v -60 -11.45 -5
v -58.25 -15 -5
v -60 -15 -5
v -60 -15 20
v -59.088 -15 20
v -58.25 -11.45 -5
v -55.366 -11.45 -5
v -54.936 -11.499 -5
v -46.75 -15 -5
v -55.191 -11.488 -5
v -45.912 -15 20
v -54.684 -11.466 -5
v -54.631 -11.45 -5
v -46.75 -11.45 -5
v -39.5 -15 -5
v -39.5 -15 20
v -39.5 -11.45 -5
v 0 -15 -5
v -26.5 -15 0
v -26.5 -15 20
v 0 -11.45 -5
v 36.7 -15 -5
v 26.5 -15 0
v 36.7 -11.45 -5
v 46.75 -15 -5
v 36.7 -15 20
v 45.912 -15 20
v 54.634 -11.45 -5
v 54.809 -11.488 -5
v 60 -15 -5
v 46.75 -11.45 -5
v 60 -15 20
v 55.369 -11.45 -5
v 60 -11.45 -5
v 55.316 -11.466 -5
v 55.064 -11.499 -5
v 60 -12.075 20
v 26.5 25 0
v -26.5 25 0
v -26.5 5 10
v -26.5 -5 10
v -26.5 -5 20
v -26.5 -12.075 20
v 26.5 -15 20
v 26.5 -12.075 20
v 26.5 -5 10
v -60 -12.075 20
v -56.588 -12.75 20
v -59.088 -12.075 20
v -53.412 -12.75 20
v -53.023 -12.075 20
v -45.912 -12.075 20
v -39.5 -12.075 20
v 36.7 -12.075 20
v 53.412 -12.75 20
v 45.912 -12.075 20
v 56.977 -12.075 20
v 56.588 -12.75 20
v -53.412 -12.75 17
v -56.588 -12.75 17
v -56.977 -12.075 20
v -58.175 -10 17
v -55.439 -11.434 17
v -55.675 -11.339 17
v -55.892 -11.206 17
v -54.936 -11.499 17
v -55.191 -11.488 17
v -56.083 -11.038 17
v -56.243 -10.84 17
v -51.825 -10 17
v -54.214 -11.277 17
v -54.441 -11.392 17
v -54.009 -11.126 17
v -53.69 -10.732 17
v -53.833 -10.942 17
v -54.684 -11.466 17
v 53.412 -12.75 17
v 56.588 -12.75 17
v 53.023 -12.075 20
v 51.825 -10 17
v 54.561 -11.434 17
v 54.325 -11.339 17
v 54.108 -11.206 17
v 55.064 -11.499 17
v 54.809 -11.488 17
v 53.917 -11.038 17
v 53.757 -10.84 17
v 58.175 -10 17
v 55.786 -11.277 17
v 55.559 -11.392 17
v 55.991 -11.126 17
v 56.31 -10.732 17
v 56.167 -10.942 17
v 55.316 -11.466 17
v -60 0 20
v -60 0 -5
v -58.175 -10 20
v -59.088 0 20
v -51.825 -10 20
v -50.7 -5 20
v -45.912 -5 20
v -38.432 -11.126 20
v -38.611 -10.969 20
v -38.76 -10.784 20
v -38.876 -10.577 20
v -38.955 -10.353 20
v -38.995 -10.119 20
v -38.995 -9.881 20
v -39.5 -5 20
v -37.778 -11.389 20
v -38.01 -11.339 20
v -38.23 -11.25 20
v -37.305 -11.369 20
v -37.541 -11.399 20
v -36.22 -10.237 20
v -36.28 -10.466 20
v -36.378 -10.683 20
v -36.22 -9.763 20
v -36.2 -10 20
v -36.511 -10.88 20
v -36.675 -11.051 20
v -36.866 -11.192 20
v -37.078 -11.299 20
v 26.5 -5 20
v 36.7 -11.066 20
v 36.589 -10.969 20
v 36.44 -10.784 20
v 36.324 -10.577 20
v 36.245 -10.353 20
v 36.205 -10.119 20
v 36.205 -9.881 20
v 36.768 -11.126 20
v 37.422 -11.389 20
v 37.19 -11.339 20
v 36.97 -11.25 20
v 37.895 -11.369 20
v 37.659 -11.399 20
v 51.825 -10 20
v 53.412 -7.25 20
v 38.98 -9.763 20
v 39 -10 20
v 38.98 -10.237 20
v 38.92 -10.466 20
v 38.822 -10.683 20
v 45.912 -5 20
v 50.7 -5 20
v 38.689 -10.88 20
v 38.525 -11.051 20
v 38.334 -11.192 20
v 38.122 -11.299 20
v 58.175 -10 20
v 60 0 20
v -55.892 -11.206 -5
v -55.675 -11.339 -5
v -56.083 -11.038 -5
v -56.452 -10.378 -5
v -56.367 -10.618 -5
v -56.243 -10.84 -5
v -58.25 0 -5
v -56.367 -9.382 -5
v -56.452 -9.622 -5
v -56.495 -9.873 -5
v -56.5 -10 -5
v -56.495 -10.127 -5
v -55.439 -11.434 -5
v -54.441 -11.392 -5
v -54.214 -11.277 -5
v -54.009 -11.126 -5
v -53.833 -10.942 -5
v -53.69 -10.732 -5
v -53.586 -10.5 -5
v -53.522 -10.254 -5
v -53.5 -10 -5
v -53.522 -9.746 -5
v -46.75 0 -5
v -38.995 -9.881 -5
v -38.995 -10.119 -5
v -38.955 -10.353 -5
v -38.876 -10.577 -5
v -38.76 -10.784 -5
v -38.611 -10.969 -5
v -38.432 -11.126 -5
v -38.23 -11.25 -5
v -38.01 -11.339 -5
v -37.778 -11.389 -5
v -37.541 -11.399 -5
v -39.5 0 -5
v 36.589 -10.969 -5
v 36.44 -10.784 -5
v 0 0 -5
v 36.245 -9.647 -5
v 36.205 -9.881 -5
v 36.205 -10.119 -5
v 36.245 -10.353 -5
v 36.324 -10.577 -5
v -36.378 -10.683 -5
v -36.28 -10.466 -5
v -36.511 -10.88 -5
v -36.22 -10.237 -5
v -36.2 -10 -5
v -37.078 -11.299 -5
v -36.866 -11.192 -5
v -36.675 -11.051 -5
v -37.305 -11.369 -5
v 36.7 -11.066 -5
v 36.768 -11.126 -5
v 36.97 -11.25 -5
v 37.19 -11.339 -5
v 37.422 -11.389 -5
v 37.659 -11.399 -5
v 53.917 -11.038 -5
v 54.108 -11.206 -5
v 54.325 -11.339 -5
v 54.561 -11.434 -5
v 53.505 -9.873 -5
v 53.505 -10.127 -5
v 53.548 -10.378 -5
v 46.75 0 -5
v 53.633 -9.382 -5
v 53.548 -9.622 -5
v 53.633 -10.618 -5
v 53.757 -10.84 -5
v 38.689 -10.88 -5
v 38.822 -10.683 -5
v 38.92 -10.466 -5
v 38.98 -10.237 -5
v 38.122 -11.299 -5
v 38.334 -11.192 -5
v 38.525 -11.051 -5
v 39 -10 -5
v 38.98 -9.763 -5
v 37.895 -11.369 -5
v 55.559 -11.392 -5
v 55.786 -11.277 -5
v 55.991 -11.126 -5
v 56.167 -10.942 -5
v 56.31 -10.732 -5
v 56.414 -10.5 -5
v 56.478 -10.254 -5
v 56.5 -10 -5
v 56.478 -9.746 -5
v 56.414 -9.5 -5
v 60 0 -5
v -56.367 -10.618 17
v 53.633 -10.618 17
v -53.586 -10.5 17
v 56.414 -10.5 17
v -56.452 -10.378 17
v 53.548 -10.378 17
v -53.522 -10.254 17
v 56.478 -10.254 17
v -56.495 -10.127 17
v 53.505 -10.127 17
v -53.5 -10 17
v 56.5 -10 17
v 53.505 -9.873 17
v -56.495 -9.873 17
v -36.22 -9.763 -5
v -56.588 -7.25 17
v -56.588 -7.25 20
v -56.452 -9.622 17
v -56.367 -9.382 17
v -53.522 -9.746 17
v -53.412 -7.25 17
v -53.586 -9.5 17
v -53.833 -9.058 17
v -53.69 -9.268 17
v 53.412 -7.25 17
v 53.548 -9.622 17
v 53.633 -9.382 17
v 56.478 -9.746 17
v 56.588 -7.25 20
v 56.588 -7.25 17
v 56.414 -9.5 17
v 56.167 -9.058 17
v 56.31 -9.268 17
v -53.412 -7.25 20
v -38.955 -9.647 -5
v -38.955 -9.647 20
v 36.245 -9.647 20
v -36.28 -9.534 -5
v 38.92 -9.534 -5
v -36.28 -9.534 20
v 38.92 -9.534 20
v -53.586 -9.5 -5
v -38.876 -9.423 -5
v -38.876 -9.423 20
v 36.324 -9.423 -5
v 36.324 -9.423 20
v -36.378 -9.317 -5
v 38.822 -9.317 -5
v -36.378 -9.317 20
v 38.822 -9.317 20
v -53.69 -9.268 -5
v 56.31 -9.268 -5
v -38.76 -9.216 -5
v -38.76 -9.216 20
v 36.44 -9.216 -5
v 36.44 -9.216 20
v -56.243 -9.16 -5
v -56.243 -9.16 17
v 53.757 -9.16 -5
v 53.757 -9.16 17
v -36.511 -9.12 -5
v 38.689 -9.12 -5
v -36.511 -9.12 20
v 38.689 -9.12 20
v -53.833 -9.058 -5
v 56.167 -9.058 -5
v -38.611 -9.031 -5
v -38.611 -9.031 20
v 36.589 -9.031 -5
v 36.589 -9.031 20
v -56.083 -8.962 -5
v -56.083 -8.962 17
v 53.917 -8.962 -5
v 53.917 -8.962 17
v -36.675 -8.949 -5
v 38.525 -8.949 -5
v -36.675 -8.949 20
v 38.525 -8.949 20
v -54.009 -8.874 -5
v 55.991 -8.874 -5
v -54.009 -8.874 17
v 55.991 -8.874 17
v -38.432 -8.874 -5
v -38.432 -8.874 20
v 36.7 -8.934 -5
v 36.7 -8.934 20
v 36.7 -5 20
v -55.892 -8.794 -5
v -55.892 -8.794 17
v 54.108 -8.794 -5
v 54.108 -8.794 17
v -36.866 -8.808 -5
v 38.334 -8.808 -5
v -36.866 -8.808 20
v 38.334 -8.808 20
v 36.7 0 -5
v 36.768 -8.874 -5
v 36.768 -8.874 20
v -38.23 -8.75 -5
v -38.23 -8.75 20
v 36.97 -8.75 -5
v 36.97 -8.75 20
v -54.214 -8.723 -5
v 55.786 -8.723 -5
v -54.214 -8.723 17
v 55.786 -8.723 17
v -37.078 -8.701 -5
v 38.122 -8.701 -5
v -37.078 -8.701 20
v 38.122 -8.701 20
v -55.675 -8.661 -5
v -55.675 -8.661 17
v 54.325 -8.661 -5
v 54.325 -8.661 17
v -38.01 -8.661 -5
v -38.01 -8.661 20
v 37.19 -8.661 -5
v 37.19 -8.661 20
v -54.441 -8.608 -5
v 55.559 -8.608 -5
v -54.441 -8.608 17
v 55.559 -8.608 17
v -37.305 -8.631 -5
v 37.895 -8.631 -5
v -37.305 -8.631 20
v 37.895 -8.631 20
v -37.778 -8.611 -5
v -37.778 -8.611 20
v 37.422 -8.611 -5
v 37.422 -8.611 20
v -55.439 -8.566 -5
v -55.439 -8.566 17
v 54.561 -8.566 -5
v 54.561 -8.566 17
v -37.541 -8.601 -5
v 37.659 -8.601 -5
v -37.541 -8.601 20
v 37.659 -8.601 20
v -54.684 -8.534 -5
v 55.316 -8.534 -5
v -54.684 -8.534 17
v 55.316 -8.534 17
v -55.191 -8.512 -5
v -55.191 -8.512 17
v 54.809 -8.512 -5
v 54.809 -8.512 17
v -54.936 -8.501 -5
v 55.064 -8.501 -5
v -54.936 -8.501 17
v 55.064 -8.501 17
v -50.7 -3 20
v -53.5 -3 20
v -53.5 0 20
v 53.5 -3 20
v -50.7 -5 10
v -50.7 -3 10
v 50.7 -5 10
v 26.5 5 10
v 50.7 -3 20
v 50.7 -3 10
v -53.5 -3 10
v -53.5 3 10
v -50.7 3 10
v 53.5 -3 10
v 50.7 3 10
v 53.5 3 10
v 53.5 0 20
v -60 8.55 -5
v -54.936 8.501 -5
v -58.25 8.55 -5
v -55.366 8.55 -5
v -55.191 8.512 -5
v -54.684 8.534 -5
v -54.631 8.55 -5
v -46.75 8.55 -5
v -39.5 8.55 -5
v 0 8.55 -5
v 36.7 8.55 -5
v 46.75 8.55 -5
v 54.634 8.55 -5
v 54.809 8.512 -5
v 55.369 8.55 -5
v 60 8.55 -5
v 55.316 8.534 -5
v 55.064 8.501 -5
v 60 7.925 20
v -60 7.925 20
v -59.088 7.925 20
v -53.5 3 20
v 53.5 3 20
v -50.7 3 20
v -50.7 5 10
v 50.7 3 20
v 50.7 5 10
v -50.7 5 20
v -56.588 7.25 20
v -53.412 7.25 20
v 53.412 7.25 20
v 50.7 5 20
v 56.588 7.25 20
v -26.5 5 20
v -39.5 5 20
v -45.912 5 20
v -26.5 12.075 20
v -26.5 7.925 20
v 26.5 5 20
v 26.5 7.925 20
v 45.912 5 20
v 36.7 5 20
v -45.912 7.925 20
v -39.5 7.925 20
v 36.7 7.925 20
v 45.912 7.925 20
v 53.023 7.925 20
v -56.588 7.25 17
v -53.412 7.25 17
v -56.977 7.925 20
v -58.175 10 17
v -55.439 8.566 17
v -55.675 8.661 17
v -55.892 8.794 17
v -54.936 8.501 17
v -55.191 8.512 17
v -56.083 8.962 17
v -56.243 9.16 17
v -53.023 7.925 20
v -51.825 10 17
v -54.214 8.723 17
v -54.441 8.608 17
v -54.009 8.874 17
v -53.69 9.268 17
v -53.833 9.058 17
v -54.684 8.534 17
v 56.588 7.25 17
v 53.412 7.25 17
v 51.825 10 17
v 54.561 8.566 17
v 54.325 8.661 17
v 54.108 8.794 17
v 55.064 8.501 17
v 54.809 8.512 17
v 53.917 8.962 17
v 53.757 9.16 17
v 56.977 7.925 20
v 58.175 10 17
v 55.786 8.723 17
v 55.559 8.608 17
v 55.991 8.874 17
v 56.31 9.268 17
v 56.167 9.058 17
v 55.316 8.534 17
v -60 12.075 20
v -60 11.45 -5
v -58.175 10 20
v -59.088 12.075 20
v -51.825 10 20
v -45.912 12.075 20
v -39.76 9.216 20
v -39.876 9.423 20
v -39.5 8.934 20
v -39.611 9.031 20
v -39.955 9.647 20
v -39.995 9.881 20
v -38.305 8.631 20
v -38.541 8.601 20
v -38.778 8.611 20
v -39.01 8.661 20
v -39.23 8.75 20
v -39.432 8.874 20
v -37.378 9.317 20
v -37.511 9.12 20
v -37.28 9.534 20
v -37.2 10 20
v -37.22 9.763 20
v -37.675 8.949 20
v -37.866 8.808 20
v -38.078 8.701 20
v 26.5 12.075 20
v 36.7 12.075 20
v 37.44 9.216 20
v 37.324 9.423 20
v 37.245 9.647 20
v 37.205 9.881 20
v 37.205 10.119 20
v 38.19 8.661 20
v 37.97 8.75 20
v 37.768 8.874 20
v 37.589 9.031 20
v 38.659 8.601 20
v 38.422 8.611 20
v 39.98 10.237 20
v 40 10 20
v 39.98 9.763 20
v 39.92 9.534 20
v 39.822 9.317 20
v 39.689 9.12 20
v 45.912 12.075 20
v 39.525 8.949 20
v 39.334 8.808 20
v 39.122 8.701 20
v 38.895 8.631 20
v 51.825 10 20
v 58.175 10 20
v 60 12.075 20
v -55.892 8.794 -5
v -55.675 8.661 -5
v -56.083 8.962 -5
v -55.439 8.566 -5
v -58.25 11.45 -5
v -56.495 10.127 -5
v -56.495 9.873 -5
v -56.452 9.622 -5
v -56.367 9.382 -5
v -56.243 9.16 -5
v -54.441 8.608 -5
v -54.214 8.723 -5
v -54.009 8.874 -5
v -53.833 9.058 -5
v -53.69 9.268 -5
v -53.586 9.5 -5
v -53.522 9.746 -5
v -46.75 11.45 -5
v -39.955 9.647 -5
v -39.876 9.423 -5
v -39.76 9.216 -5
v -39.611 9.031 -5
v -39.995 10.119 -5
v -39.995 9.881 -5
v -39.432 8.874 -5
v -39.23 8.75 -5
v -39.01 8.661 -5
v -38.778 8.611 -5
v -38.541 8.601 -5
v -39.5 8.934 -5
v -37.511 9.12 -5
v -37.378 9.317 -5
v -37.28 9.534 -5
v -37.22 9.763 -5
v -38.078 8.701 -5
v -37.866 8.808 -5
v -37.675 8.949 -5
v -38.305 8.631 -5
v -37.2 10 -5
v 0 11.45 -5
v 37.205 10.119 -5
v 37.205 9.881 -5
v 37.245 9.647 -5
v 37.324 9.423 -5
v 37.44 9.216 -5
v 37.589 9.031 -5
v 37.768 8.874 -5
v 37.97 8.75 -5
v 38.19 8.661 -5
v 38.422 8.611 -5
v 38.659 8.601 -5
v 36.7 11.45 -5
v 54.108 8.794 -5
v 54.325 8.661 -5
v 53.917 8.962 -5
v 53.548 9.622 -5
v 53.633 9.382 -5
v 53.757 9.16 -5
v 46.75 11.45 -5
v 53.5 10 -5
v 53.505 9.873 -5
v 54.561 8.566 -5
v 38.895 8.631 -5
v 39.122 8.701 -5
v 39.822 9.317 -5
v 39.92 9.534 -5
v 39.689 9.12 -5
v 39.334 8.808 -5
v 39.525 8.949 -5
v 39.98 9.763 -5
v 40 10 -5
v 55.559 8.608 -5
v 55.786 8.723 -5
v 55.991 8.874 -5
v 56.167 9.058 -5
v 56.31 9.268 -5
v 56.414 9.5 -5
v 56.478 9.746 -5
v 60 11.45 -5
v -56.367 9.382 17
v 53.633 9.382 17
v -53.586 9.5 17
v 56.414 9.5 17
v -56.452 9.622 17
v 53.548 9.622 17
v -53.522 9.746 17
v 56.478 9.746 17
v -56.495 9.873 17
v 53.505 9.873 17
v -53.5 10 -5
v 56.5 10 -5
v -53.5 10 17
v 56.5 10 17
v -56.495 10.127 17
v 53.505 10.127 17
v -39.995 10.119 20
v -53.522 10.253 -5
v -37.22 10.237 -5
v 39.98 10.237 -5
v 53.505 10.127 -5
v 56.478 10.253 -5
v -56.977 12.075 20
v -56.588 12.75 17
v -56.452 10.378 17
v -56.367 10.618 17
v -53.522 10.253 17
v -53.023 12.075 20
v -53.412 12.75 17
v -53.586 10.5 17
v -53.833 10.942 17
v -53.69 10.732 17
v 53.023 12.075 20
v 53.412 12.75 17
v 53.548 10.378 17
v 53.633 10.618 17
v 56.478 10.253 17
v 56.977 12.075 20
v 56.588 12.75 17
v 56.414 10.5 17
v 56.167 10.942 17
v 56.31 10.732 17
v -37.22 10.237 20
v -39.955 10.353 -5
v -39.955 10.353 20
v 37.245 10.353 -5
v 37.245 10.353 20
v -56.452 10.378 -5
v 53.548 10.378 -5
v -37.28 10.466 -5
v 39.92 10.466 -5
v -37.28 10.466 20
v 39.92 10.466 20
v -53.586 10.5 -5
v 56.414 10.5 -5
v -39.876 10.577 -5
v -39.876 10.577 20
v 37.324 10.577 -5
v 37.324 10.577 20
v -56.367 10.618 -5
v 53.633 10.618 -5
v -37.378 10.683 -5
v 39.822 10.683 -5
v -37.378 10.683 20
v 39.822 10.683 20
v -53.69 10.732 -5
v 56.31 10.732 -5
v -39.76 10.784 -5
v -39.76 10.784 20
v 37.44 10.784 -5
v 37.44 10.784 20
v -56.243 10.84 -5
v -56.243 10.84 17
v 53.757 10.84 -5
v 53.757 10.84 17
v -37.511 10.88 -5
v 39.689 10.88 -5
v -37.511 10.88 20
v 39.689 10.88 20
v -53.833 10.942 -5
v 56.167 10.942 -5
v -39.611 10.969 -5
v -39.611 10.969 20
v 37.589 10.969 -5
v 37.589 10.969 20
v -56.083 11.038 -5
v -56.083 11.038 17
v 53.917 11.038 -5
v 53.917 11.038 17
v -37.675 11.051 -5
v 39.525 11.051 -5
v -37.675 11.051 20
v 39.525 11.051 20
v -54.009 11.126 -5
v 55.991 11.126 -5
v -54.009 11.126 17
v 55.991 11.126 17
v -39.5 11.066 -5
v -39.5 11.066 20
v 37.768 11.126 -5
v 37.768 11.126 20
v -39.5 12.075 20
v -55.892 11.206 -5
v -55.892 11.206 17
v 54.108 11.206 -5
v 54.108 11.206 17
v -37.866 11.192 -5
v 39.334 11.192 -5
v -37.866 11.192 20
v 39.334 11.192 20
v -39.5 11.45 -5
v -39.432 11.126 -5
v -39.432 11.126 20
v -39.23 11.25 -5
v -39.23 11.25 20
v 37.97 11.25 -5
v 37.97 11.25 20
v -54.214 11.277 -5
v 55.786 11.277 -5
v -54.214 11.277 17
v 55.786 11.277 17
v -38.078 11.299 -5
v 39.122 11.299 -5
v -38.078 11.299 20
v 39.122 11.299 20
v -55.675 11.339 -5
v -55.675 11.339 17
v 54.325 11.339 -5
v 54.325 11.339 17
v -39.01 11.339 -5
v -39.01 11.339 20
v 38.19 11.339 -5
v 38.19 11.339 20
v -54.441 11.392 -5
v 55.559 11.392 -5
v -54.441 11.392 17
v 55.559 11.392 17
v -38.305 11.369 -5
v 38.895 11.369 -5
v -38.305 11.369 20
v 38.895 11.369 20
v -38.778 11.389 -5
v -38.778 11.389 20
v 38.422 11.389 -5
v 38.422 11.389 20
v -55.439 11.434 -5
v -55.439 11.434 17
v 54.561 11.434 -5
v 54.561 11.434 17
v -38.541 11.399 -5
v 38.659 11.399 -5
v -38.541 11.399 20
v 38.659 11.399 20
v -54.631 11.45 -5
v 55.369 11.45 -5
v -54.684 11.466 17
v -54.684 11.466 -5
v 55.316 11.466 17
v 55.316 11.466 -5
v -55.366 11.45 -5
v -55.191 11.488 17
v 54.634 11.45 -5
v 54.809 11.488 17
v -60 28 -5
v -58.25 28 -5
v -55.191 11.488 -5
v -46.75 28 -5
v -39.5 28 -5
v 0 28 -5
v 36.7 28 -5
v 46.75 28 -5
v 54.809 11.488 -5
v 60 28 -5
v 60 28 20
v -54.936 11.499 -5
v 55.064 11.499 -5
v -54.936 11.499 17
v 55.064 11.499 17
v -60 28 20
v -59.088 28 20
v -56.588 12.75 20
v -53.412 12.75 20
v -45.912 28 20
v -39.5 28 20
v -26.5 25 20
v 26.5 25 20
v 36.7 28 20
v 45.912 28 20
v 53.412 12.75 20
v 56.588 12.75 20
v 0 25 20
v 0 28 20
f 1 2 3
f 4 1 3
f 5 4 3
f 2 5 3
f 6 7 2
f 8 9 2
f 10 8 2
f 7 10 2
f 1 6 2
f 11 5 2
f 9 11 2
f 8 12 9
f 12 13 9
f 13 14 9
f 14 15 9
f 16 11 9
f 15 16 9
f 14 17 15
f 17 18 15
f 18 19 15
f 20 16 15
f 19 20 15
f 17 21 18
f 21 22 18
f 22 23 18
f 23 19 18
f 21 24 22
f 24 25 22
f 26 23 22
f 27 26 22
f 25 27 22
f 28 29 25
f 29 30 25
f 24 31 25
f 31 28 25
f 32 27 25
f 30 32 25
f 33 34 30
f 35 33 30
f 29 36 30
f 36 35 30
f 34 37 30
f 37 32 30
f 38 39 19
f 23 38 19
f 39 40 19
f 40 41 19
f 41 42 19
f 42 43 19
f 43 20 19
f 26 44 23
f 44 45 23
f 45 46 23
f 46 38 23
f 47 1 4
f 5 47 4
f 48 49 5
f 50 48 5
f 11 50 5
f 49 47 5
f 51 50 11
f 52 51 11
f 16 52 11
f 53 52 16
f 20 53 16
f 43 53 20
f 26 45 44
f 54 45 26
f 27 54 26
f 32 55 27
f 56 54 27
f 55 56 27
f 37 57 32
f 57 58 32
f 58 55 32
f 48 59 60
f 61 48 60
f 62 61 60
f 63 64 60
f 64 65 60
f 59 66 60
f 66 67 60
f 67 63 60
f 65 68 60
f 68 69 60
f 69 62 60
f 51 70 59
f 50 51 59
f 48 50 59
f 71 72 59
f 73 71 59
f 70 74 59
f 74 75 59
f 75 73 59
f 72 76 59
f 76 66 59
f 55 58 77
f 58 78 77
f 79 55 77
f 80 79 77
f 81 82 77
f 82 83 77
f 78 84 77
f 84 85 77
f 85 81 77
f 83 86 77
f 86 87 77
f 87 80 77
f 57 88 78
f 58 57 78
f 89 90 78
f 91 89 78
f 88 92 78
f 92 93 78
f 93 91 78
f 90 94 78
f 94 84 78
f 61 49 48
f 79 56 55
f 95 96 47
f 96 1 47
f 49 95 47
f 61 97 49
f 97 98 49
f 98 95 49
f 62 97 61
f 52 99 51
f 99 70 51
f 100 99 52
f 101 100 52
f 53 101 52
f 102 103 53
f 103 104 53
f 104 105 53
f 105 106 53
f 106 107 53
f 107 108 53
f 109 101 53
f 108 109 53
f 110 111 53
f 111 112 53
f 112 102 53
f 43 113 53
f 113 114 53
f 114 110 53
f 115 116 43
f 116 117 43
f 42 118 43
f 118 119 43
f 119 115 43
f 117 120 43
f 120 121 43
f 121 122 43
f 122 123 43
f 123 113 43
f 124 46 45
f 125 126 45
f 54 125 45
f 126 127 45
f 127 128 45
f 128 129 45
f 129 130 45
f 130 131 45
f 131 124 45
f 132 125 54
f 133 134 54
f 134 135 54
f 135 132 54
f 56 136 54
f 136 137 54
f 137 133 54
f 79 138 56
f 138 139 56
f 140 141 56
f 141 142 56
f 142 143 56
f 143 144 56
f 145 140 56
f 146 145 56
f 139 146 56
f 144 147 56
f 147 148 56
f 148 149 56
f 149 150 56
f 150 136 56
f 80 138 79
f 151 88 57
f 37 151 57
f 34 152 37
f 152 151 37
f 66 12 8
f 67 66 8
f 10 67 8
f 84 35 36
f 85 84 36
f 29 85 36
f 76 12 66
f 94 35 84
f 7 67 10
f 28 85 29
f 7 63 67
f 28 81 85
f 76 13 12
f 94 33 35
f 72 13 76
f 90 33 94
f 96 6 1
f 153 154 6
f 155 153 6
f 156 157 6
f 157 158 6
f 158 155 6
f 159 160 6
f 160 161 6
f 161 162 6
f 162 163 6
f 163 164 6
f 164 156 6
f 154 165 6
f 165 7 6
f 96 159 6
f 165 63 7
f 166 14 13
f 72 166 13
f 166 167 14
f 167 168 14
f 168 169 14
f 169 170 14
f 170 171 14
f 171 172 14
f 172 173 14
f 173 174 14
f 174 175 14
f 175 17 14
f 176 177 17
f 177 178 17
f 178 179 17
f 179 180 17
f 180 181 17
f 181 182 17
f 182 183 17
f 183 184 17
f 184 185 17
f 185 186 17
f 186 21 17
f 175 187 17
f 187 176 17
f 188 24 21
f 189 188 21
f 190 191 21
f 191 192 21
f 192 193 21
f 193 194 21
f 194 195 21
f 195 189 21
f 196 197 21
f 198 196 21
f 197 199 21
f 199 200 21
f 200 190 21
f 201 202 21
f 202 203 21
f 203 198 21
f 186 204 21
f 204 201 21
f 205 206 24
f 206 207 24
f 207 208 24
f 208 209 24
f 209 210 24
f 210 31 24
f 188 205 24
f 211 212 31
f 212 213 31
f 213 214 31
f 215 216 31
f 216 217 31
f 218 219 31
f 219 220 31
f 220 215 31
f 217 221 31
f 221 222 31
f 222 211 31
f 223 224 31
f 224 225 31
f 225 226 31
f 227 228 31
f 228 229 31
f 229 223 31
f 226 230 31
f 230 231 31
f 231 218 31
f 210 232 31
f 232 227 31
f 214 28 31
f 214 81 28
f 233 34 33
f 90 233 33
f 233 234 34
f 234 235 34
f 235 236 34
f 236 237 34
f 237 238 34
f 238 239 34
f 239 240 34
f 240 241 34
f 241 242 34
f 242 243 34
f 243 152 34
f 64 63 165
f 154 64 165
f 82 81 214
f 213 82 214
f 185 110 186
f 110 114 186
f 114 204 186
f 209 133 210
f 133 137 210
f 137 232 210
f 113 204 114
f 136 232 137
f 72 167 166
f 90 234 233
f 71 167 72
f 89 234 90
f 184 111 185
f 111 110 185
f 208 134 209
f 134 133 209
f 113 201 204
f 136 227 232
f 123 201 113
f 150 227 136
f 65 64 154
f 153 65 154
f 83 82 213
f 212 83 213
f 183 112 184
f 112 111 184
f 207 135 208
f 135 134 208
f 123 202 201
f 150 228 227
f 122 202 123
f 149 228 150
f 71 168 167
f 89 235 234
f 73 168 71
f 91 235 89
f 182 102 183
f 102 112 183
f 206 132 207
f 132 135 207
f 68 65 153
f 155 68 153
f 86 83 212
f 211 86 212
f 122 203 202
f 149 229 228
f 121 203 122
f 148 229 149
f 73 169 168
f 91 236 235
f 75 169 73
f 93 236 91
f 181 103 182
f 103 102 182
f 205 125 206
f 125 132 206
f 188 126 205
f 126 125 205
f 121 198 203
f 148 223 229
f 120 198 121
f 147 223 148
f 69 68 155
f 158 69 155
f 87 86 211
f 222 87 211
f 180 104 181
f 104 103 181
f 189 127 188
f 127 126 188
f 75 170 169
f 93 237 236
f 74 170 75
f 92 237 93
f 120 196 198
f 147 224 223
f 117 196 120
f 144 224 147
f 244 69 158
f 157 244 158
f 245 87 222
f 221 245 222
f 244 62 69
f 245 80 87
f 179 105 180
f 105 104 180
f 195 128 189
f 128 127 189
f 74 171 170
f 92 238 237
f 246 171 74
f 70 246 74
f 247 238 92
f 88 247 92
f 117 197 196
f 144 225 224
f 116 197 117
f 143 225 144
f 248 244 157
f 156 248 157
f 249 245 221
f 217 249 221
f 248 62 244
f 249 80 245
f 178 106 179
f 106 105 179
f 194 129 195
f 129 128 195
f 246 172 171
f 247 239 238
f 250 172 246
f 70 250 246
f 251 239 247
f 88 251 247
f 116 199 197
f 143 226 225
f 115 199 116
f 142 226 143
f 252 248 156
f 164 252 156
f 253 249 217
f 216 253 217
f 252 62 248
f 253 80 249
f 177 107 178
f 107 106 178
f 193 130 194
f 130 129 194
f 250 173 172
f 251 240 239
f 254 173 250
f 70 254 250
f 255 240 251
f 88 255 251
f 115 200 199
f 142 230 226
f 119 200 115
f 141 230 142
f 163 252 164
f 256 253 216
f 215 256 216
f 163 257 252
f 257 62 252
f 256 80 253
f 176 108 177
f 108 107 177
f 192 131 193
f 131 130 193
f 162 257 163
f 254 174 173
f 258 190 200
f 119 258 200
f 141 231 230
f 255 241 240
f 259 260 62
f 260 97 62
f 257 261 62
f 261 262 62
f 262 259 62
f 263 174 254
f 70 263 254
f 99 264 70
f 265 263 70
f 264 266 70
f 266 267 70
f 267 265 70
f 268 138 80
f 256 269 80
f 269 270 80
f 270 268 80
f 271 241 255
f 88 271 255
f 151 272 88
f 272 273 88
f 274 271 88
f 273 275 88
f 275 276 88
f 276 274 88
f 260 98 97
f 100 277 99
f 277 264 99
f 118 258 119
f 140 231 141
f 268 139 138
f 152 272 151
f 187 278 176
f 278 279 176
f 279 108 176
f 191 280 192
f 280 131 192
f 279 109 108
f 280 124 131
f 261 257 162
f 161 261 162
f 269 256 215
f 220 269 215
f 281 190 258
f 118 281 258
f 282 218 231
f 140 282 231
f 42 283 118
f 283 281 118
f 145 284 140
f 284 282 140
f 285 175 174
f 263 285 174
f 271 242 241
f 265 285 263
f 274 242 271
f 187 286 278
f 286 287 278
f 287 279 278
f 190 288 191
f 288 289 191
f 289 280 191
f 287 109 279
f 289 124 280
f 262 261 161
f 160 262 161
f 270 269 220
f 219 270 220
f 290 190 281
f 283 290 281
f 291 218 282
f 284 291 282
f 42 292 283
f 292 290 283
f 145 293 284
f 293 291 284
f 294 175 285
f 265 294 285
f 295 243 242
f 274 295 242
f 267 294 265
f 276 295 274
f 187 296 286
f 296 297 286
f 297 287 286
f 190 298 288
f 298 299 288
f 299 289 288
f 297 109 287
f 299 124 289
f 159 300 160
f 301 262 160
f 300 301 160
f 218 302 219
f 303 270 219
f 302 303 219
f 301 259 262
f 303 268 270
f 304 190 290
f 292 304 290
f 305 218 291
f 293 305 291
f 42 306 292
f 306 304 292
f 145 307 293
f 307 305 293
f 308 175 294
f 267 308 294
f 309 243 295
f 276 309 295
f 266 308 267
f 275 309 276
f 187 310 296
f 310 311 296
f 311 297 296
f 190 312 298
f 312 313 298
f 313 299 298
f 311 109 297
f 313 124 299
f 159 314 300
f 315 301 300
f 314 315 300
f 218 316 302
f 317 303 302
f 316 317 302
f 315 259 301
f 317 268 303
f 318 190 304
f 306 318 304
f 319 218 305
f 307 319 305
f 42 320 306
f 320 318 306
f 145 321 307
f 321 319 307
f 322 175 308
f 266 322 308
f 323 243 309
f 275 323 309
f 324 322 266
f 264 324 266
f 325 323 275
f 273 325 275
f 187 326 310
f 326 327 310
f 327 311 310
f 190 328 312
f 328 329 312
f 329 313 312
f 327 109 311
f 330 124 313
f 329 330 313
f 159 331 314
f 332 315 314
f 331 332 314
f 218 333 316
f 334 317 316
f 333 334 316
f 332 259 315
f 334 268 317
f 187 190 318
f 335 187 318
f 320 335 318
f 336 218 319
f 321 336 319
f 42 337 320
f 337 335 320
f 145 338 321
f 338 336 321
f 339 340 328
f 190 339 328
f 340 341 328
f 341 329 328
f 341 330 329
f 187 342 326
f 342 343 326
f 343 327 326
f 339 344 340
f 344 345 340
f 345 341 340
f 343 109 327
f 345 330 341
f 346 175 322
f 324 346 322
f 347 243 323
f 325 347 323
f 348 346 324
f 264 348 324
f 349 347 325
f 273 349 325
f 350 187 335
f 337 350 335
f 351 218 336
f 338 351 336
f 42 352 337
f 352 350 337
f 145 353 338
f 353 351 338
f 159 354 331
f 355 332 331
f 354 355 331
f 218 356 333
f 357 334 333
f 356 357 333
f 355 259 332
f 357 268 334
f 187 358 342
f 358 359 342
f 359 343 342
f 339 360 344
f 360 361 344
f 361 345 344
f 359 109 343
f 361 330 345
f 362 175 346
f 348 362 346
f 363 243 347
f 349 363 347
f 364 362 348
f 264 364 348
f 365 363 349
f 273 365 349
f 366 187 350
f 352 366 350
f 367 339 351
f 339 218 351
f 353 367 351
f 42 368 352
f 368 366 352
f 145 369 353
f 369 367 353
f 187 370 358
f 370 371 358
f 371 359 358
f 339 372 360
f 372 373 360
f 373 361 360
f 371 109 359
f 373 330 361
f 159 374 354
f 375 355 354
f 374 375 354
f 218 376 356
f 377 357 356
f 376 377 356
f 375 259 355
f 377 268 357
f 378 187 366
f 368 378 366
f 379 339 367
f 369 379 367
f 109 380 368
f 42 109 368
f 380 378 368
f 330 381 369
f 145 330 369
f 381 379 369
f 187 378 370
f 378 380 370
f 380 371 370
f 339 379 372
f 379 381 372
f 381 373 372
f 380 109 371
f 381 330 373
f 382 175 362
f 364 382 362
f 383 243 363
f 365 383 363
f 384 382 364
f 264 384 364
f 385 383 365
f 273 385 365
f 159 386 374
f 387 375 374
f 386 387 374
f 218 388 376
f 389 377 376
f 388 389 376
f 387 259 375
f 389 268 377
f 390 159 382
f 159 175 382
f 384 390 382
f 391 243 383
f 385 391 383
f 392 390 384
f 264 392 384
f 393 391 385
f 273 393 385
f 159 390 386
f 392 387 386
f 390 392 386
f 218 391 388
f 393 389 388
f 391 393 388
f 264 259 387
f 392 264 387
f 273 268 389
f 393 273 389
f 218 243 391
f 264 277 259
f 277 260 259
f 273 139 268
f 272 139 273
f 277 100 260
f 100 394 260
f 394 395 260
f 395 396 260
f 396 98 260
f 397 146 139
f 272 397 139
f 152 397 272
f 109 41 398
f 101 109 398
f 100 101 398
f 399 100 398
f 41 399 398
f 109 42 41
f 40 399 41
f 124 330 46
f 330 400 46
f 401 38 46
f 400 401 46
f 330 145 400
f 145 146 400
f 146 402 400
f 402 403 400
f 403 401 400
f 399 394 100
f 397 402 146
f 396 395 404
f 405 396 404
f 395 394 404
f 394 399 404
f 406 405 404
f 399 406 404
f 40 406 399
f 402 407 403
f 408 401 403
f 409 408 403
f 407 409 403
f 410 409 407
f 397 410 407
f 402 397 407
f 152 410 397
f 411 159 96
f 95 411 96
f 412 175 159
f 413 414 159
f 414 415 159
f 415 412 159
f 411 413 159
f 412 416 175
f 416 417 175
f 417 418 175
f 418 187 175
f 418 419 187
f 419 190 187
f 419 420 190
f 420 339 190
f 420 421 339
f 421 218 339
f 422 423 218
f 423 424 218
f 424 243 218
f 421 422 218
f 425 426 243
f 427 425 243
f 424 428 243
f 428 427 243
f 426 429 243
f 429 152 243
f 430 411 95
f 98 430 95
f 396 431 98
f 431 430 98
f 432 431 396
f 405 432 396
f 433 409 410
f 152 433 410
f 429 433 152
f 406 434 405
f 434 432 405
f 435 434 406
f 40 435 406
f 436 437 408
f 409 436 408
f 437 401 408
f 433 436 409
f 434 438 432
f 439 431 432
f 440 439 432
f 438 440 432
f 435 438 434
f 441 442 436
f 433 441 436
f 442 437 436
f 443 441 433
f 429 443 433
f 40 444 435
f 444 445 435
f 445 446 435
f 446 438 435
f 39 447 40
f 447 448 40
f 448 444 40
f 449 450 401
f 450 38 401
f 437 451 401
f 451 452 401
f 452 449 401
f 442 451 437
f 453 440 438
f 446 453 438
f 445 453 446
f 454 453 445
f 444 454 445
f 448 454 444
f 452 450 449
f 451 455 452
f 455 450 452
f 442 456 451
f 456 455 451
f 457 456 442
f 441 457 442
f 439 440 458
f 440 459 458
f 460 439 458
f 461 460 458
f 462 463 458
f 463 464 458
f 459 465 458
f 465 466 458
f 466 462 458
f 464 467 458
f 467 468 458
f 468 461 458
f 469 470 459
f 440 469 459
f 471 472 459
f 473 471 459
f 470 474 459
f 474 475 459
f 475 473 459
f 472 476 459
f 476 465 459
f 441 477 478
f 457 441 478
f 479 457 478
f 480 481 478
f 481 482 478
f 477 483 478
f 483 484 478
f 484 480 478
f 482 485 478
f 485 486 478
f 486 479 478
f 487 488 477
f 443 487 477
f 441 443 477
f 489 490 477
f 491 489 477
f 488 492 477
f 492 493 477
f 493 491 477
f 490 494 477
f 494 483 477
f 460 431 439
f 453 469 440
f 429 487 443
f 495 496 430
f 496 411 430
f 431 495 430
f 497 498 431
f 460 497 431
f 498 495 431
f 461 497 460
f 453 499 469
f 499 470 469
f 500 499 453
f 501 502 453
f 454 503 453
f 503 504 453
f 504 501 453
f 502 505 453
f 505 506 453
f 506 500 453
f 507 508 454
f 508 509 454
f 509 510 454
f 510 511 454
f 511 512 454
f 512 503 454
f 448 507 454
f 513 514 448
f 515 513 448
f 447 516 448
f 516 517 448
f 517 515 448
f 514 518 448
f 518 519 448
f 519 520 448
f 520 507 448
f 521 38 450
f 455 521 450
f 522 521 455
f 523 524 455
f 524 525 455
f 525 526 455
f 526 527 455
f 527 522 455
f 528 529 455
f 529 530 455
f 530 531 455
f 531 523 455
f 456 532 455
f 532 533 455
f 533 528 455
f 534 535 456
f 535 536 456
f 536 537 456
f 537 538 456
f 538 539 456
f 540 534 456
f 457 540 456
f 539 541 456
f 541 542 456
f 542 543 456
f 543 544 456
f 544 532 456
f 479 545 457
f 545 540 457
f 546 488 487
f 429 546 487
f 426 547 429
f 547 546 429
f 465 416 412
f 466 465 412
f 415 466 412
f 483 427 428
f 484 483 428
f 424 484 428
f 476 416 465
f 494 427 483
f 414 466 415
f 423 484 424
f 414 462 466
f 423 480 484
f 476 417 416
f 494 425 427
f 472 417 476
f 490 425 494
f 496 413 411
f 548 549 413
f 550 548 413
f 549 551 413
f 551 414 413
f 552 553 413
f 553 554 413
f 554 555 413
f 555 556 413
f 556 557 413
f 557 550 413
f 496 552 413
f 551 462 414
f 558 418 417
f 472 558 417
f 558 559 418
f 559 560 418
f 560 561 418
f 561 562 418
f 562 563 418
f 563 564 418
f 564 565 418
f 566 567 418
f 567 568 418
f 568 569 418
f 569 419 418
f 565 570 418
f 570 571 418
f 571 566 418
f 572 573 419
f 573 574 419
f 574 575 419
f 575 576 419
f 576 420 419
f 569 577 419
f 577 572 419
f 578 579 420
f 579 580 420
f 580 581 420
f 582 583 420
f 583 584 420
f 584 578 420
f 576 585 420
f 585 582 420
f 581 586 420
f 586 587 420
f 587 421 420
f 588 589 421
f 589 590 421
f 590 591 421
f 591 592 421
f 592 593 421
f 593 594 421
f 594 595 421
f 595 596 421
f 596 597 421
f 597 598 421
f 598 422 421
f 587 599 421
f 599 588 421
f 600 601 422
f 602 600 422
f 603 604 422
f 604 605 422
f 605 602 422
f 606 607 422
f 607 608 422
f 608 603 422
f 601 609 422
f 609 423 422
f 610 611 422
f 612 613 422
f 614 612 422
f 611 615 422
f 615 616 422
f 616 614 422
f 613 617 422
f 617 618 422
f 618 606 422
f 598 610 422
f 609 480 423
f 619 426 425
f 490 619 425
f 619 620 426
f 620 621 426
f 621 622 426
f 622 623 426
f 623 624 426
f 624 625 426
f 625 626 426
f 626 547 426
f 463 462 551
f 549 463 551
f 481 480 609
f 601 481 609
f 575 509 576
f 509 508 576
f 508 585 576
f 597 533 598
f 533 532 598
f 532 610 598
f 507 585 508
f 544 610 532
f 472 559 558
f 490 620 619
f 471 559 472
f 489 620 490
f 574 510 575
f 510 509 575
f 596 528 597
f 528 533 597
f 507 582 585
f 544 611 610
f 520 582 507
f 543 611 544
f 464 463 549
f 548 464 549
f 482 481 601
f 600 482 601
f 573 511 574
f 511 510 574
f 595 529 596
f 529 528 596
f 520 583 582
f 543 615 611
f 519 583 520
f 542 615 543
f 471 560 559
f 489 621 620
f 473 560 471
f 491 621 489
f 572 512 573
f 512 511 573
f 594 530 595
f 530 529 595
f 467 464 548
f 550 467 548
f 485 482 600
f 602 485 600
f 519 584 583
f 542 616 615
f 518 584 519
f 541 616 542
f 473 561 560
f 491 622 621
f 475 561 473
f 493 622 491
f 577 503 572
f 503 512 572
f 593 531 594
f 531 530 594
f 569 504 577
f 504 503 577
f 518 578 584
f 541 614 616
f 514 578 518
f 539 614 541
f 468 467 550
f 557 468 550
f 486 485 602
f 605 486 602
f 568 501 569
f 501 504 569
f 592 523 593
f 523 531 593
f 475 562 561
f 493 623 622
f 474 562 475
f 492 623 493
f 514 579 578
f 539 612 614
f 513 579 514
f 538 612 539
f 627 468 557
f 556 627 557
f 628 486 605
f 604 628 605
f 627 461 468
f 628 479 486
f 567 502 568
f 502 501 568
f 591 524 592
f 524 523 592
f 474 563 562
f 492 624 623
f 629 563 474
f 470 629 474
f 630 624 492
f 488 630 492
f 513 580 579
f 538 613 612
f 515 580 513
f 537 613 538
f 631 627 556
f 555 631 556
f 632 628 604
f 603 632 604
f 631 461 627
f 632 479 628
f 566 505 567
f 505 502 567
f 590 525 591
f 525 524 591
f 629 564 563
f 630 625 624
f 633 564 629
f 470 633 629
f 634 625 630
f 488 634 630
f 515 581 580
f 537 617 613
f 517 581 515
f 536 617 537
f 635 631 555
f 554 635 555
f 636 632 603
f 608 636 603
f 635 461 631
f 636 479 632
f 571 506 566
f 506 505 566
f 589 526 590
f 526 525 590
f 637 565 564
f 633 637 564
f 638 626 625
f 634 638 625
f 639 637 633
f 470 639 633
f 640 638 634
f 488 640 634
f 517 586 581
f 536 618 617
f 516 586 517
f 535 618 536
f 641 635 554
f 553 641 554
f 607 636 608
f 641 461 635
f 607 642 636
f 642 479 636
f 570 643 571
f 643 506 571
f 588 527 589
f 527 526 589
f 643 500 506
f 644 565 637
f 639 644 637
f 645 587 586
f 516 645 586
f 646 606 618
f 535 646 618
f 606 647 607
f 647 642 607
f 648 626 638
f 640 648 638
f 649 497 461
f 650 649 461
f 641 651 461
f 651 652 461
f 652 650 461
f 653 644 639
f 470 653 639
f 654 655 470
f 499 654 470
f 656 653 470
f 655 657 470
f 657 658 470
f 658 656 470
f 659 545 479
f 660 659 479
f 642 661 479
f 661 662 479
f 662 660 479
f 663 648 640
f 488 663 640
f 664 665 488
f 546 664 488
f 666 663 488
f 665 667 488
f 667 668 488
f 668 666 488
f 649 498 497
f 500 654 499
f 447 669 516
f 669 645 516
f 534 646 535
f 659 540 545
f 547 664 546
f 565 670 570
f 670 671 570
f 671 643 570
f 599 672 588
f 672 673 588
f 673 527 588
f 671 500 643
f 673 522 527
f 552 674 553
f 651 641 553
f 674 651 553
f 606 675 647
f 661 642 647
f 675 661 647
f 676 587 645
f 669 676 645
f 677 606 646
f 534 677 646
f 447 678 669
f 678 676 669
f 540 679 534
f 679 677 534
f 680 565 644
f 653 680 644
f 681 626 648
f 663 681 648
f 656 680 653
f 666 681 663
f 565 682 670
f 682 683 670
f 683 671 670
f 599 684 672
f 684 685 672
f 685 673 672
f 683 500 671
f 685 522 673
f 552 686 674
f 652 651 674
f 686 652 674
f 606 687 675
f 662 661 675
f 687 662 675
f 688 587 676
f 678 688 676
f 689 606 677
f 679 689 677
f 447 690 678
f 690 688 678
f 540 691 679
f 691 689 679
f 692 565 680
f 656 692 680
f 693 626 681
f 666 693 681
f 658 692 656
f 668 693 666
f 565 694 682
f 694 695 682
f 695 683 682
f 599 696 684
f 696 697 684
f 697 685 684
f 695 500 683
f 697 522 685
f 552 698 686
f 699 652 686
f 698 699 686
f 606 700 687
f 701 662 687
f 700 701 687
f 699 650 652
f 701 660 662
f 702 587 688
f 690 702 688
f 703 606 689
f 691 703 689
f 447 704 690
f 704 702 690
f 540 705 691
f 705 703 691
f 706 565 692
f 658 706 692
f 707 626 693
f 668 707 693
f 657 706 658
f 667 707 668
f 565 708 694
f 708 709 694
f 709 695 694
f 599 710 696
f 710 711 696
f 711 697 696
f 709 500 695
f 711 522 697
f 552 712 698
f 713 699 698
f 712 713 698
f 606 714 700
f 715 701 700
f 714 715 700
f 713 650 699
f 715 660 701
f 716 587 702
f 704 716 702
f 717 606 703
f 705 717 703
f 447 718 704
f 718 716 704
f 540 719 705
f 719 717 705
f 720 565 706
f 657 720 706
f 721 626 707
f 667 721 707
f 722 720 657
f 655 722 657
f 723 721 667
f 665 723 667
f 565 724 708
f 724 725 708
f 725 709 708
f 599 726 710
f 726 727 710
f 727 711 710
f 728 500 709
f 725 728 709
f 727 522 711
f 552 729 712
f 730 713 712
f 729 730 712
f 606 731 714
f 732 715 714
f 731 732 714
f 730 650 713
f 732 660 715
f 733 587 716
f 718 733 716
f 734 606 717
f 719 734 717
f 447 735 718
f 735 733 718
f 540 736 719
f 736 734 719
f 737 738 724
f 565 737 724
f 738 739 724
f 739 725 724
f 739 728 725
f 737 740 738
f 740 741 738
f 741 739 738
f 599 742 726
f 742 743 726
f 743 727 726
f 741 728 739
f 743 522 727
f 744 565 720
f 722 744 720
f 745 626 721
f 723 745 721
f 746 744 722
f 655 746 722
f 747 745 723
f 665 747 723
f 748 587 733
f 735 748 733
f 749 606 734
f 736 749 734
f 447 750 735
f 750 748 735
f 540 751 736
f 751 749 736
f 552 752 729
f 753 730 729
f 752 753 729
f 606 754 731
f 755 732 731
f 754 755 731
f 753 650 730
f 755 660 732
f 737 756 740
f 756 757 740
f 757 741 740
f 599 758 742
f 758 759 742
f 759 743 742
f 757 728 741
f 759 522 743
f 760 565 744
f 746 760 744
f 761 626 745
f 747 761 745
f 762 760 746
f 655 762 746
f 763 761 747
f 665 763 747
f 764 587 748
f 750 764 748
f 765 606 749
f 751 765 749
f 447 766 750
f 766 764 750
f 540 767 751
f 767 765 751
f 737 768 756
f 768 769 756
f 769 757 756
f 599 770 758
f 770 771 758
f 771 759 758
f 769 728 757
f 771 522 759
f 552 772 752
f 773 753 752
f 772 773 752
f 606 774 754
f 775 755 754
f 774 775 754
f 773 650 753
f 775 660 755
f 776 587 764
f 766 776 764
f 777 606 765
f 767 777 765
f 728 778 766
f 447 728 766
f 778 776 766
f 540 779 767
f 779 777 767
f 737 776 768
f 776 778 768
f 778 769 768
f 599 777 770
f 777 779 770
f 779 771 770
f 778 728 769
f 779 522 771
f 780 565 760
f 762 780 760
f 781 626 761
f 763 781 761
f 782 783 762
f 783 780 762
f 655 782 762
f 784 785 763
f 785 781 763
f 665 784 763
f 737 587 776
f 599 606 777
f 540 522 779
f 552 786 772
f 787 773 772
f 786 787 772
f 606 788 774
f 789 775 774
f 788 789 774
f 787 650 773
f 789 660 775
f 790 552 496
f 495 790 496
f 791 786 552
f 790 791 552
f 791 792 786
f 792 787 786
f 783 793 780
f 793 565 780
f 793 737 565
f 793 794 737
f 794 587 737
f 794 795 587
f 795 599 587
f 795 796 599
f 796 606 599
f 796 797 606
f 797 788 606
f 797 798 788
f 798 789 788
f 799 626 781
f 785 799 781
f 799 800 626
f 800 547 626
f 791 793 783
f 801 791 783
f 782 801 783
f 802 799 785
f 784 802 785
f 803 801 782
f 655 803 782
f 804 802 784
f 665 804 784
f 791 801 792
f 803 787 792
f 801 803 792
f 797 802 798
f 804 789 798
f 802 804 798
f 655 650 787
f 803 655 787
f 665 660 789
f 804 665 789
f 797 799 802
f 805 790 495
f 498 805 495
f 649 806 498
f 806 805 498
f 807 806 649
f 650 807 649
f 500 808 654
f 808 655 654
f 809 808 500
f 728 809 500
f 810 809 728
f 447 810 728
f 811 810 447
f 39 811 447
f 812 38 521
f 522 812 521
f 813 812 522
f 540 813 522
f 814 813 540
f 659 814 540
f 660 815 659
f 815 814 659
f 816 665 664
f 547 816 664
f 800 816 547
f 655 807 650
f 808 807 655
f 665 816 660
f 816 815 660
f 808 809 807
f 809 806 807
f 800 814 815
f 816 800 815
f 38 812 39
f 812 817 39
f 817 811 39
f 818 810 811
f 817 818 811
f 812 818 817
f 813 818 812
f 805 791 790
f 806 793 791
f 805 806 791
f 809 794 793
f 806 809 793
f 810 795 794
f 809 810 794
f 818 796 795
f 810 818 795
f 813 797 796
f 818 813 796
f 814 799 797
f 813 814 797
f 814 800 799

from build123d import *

# Parameters (mm, degrees)
ESQUISSE1_W             = 120
ESQUISSE1_H             = 30
ESQUISSE1_R             = 1.5
BOSS_EXTRU_1_DEPTH      = 5
BOSS_EXTRU_2_DEPTH      = 20
BOSS_EXTRU_3_DEPTH      = 10
ESQUISSE1_6_R           = 1.5
BOSS_EXTRU_4_DEPTH      = 17
ESQUISSE2_R             = 1.4
ENL_V_MAT_EXTRU_1_DEPTH = 26
BOSS_EXTRU_5_DEPTH      = 10
ESQUISSE4_W             = 120
ESQUISSE4_H             = 25
BOSS_EXTRU_6_DEPTH      = 3


with BuildPart() as part:
    # Esquisse1 → Boss.-Extru.1 (new body)
    with BuildSketch(Plane.XY):
        Rectangle(ESQUISSE1_W, ESQUISSE1_H)
        with Locations((-55, 10)):
            Circle(ESQUISSE1_R, mode=Mode.SUBTRACT)
        with Locations((-55, -10)):
            Circle(ESQUISSE1_R, mode=Mode.SUBTRACT)
        with Locations((55, -10)):
            Circle(ESQUISSE1_R, mode=Mode.SUBTRACT)
        with Locations((55, 10)):
            Circle(ESQUISSE1_R, mode=Mode.SUBTRACT)
    extrude(amount=-BOSS_EXTRU_1_DEPTH)

    # Esquisse1<4> → Boss.-Extru.2 (add)
    with BuildSketch(Plane.XY):
        Polygon((-26.5, 15), (-60, 15), (-60, -15), (-26.5, -15), (-26.5, -5), (-50.7, -5), (-50.7, -3), (-53.5, -3), (-53.5, 3), (-50.7, 3), (-50.7, 5), (-26.5, 5), align=None)
        Polygon((-53.41228676, 12.75), (-51.824573519, 10), (-53.41228676, 7.25), (-56.58771324, 7.25), (-58.175426481, 10), (-56.58771324, 12.75), align=None, mode=Mode.SUBTRACT)
        Polygon((-53.41228676, -7.25), (-51.824573519, -10), (-53.41228676, -12.75), (-56.58771324, -12.75), (-58.175426481, -10), (-56.58771324, -7.25), align=None, mode=Mode.SUBTRACT)
        Polygon((60, 15), (26.5, 15), (26.5, 5), (50.7, 5), (50.7, 3), (53.5, 3), (53.5, -3), (50.7, -3), (50.7, -5), (26.5, -5), (26.5, -15), (60, -15), align=None)
        Polygon((56.58771324, 7.25), (53.41228676, 7.25), (51.824573519, 10), (53.41228676, 12.75), (56.58771324, 12.75), (58.175426481, 10), align=None, mode=Mode.SUBTRACT)
        Polygon((56.58771324, -7.25), (58.175426481, -10), (56.58771324, -12.75), (53.41228676, -12.75), (51.824573519, -10), (53.41228676, -7.25), align=None, mode=Mode.SUBTRACT)
    extrude(amount=BOSS_EXTRU_2_DEPTH)

    # Esquisse1<5> → Boss.-Extru.3 (add)
    with BuildSketch(Plane.XY):
        Polygon((-26.5, -5), (-26.5, 5), (-50.7, 5), (-50.7, 3), (-53.5, 3), (-53.5, -3), (-50.7, -3), (-50.7, -5), align=None)
        Polygon((50.7, 5), (26.5, 5), (26.5, -5), (50.7, -5), (50.7, -3), (53.5, -3), (53.5, 3), (50.7, 3), align=None)
    extrude(amount=BOSS_EXTRU_3_DEPTH)

    # Esquisse1<6> → Boss.-Extru.4 (add)
    with BuildSketch(Plane.XY):
        Polygon((51.824573519, 10), (53.41228676, 12.75), (56.58771324, 12.75), (58.175426481, 10), (56.58771324, 7.25), (53.41228676, 7.25), align=None)
        with Locations((55, 10)):
            Circle(ESQUISSE1_6_R, mode=Mode.SUBTRACT)
        Polygon((56.58771324, -7.25), (53.41228676, -7.25), (51.824573519, -10), (53.41228676, -12.75), (56.58771324, -12.75), (58.175426481, -10), align=None)
        with Locations((55, -10)):
            Circle(ESQUISSE1_6_R, mode=Mode.SUBTRACT)
        Polygon((-56.58771324, 7.25), (-53.41228676, 7.25), (-51.824573519, 10), (-53.41228676, 12.75), (-56.58771324, 12.75), (-58.175426481, 10), align=None)
        with Locations((-55, 10)):
            Circle(ESQUISSE1_6_R, mode=Mode.SUBTRACT)
        Polygon((-51.824573519, -10), (-53.41228676, -12.75), (-56.58771324, -12.75), (-58.175426481, -10), (-56.58771324, -7.25), (-53.41228676, -7.25), align=None)
        with Locations((-55, -10)):
            Circle(ESQUISSE1_6_R, mode=Mode.SUBTRACT)
    extrude(amount=BOSS_EXTRU_4_DEPTH)

    # Esquisse2 → Enlèv. mat.-Extru.1 (cut, through all)
    with BuildSketch(Plane.XY.offset(20)):
        with Locations((-38.6, 10)):
            Circle(ESQUISSE2_R)
        with Locations((-37.6, -10)):
            Circle(ESQUISSE2_R)
        with Locations((38.6, 10)):
            Circle(ESQUISSE2_R)
        with Locations((37.6, -10)):
            Circle(ESQUISSE2_R)
    extrude(amount=-ENL_V_MAT_EXTRU_1_DEPTH, mode=Mode.SUBTRACT)

    # Esquisse3 → Boss.-Extru.5 (add)
    with BuildSketch(Plane(origin=(0, 15, 0), x_dir=(1, 0, 0), z_dir=(0, 1, 0))):
        Polygon((-60, -20), (-60, 5), (60, 5), (60, -20), (26.5, -20), (26.5, 0), (-26.5, 0), (-26.5, -20), align=None)
    extrude(amount=BOSS_EXTRU_5_DEPTH)

    # Esquisse4 → Boss.-Extru.6 (add)
    with BuildSketch(Plane(origin=(0, 25, 0), x_dir=(1, 0, 0), z_dir=(0, 1, 0))):
        with Locations((0, -7.5)):
            Rectangle(ESQUISSE4_W, ESQUISSE4_H)
    extrude(amount=BOSS_EXTRU_6_DEPTH)


solid = part.part
